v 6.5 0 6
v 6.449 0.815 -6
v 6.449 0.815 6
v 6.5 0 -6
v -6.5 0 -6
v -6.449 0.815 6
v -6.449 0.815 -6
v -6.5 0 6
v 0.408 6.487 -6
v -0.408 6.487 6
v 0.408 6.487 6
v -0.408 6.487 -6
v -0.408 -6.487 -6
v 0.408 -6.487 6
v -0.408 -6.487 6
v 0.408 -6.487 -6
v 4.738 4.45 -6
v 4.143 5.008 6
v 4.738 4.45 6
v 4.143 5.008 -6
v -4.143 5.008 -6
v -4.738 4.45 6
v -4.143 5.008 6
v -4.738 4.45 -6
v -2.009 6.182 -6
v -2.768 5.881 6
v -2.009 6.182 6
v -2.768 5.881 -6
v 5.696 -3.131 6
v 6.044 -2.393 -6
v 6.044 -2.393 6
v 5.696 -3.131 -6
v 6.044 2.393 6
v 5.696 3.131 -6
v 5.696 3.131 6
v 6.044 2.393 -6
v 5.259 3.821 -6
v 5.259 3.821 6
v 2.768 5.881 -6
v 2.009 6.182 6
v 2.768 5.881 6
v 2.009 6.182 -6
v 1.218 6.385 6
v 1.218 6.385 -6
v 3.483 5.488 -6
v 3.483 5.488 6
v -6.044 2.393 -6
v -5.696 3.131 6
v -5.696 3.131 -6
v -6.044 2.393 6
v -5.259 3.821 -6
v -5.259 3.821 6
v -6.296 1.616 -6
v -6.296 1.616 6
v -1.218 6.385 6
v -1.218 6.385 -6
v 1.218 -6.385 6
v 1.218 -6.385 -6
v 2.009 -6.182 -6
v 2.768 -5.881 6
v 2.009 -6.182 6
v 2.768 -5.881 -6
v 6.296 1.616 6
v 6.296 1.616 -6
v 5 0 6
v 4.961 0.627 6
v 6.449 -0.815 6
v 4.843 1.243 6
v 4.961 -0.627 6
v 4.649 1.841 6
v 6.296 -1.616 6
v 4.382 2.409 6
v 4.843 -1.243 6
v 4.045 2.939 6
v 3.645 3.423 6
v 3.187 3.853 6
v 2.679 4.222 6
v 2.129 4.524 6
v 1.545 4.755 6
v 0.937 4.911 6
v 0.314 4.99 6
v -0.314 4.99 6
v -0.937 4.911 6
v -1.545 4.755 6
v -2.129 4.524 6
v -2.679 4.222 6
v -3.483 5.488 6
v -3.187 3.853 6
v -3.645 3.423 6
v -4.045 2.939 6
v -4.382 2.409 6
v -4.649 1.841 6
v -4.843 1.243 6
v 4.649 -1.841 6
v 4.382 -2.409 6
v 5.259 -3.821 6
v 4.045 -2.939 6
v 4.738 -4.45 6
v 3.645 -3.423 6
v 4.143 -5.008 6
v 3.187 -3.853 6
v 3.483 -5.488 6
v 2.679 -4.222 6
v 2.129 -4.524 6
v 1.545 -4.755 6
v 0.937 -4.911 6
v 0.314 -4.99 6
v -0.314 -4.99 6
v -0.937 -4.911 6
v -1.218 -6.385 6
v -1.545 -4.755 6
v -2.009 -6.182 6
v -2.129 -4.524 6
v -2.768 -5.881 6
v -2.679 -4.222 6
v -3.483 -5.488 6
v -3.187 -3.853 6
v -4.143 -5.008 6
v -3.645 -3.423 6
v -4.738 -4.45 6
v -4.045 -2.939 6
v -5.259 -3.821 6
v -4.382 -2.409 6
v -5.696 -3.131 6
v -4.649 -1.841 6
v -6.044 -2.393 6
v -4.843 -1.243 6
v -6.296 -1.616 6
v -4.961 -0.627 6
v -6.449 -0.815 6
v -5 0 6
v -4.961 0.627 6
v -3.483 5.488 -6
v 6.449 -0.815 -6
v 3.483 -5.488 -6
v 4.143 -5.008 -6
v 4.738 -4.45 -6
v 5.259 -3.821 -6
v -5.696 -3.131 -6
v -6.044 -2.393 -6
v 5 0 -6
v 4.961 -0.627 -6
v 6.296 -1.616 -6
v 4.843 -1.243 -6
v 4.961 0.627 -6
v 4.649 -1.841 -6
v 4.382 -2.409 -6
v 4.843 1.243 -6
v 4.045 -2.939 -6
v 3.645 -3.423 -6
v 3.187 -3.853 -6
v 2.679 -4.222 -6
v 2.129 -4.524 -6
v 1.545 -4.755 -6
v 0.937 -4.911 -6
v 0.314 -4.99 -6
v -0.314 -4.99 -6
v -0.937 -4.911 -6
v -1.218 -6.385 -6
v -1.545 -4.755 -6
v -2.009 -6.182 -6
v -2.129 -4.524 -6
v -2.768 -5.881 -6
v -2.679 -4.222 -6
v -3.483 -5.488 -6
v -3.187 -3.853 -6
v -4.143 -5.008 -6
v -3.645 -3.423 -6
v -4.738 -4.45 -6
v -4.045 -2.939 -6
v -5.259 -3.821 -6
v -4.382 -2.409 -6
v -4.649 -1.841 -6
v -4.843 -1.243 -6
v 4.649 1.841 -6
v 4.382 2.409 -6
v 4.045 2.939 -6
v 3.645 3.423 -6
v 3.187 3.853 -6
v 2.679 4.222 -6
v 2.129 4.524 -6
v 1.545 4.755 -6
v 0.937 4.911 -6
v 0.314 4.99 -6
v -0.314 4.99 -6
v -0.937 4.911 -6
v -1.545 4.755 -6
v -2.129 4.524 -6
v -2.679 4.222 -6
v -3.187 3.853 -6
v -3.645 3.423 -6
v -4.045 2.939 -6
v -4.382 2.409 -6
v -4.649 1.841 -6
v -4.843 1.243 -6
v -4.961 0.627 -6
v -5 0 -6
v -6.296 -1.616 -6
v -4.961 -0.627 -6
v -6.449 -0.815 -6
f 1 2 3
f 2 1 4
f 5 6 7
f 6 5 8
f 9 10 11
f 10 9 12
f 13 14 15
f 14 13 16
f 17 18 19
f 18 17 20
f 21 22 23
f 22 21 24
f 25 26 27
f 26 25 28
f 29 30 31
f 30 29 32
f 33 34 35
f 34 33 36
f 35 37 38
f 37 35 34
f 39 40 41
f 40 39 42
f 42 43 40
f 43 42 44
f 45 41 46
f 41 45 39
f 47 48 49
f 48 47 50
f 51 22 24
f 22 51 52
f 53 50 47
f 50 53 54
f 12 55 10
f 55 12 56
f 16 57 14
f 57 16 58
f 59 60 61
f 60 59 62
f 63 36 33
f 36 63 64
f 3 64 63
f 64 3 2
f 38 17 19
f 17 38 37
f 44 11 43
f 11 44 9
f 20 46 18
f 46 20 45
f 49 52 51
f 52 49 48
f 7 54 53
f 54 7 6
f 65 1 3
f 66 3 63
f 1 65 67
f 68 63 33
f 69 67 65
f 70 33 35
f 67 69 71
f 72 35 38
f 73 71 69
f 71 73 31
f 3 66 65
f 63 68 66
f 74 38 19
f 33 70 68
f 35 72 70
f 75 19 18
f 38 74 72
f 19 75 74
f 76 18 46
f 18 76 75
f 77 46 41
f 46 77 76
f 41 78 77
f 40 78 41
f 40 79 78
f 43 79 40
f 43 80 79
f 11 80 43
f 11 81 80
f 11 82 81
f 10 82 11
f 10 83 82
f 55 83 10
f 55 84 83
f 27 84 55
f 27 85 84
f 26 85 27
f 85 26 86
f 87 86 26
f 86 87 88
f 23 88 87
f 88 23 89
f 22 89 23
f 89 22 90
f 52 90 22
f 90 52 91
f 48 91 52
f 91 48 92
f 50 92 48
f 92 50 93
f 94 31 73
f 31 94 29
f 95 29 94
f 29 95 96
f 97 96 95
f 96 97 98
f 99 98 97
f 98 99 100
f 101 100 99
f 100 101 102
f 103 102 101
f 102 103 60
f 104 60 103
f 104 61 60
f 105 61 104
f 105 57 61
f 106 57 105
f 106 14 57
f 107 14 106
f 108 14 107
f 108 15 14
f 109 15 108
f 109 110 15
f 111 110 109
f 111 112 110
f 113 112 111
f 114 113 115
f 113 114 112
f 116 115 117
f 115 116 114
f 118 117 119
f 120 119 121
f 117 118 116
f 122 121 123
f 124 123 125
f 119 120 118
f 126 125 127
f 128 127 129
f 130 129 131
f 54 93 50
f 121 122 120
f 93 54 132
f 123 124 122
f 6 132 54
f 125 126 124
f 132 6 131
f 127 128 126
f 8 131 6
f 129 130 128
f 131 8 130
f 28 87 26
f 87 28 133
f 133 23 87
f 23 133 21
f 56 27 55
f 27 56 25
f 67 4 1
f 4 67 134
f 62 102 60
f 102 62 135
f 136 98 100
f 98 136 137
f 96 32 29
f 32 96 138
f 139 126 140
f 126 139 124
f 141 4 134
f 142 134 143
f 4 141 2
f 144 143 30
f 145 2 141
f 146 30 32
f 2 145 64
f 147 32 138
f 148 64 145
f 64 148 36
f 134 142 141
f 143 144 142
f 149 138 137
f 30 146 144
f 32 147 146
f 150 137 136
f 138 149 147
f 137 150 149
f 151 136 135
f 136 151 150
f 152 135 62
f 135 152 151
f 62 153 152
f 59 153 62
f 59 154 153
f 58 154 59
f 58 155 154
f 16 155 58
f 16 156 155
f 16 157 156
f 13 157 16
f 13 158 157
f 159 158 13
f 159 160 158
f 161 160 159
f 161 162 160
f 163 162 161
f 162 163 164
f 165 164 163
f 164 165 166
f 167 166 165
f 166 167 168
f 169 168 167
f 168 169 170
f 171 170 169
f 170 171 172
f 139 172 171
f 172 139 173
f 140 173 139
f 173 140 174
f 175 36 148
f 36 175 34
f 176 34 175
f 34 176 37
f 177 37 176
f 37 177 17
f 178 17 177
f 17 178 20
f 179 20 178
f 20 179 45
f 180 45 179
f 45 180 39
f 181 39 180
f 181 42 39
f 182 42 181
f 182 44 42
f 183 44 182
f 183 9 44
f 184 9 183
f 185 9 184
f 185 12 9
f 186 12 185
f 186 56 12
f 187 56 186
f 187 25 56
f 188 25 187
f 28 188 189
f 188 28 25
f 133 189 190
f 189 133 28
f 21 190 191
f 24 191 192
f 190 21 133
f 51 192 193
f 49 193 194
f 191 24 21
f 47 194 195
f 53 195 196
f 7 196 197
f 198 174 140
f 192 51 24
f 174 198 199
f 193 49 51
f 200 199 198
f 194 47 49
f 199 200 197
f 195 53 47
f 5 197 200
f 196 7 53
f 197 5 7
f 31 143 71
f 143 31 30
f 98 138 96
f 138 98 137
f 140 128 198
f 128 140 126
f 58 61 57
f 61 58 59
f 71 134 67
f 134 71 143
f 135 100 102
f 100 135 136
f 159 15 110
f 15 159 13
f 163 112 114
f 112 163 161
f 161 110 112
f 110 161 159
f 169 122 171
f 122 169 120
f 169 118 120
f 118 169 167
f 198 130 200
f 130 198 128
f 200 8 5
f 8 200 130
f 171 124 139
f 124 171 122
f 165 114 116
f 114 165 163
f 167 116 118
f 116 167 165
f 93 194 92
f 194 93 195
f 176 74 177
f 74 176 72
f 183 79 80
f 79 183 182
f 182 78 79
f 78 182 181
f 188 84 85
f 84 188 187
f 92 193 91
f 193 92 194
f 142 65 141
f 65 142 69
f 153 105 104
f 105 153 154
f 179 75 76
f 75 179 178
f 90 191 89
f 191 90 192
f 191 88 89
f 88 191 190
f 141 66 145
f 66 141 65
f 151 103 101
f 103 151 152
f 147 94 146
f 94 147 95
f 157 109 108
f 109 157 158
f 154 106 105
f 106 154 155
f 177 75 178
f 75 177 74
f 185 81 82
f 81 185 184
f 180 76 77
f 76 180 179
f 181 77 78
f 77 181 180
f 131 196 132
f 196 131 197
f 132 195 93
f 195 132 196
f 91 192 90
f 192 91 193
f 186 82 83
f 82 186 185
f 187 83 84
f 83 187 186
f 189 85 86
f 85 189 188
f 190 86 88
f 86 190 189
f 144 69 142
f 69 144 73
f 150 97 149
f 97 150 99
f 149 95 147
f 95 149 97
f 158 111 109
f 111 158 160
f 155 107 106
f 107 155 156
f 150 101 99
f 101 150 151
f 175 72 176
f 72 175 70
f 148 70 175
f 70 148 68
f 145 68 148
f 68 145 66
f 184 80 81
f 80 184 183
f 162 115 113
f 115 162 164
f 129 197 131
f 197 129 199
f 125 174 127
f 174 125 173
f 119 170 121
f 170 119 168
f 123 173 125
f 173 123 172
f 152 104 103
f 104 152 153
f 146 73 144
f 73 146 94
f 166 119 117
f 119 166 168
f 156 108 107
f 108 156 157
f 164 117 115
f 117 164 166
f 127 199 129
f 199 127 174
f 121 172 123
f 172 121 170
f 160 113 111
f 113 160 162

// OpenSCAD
$fn = 50;


difference() {
	union() {
		translate(v = [0, 0, -6.0000000000]) {
			cylinder(h = 12, r = 6.5000000000);
		}
	}
	union() {
		translate(v = [0, 0, -100.0000000000]) {
			cylinder(h = 200, r = 5);
		}
	}
}
